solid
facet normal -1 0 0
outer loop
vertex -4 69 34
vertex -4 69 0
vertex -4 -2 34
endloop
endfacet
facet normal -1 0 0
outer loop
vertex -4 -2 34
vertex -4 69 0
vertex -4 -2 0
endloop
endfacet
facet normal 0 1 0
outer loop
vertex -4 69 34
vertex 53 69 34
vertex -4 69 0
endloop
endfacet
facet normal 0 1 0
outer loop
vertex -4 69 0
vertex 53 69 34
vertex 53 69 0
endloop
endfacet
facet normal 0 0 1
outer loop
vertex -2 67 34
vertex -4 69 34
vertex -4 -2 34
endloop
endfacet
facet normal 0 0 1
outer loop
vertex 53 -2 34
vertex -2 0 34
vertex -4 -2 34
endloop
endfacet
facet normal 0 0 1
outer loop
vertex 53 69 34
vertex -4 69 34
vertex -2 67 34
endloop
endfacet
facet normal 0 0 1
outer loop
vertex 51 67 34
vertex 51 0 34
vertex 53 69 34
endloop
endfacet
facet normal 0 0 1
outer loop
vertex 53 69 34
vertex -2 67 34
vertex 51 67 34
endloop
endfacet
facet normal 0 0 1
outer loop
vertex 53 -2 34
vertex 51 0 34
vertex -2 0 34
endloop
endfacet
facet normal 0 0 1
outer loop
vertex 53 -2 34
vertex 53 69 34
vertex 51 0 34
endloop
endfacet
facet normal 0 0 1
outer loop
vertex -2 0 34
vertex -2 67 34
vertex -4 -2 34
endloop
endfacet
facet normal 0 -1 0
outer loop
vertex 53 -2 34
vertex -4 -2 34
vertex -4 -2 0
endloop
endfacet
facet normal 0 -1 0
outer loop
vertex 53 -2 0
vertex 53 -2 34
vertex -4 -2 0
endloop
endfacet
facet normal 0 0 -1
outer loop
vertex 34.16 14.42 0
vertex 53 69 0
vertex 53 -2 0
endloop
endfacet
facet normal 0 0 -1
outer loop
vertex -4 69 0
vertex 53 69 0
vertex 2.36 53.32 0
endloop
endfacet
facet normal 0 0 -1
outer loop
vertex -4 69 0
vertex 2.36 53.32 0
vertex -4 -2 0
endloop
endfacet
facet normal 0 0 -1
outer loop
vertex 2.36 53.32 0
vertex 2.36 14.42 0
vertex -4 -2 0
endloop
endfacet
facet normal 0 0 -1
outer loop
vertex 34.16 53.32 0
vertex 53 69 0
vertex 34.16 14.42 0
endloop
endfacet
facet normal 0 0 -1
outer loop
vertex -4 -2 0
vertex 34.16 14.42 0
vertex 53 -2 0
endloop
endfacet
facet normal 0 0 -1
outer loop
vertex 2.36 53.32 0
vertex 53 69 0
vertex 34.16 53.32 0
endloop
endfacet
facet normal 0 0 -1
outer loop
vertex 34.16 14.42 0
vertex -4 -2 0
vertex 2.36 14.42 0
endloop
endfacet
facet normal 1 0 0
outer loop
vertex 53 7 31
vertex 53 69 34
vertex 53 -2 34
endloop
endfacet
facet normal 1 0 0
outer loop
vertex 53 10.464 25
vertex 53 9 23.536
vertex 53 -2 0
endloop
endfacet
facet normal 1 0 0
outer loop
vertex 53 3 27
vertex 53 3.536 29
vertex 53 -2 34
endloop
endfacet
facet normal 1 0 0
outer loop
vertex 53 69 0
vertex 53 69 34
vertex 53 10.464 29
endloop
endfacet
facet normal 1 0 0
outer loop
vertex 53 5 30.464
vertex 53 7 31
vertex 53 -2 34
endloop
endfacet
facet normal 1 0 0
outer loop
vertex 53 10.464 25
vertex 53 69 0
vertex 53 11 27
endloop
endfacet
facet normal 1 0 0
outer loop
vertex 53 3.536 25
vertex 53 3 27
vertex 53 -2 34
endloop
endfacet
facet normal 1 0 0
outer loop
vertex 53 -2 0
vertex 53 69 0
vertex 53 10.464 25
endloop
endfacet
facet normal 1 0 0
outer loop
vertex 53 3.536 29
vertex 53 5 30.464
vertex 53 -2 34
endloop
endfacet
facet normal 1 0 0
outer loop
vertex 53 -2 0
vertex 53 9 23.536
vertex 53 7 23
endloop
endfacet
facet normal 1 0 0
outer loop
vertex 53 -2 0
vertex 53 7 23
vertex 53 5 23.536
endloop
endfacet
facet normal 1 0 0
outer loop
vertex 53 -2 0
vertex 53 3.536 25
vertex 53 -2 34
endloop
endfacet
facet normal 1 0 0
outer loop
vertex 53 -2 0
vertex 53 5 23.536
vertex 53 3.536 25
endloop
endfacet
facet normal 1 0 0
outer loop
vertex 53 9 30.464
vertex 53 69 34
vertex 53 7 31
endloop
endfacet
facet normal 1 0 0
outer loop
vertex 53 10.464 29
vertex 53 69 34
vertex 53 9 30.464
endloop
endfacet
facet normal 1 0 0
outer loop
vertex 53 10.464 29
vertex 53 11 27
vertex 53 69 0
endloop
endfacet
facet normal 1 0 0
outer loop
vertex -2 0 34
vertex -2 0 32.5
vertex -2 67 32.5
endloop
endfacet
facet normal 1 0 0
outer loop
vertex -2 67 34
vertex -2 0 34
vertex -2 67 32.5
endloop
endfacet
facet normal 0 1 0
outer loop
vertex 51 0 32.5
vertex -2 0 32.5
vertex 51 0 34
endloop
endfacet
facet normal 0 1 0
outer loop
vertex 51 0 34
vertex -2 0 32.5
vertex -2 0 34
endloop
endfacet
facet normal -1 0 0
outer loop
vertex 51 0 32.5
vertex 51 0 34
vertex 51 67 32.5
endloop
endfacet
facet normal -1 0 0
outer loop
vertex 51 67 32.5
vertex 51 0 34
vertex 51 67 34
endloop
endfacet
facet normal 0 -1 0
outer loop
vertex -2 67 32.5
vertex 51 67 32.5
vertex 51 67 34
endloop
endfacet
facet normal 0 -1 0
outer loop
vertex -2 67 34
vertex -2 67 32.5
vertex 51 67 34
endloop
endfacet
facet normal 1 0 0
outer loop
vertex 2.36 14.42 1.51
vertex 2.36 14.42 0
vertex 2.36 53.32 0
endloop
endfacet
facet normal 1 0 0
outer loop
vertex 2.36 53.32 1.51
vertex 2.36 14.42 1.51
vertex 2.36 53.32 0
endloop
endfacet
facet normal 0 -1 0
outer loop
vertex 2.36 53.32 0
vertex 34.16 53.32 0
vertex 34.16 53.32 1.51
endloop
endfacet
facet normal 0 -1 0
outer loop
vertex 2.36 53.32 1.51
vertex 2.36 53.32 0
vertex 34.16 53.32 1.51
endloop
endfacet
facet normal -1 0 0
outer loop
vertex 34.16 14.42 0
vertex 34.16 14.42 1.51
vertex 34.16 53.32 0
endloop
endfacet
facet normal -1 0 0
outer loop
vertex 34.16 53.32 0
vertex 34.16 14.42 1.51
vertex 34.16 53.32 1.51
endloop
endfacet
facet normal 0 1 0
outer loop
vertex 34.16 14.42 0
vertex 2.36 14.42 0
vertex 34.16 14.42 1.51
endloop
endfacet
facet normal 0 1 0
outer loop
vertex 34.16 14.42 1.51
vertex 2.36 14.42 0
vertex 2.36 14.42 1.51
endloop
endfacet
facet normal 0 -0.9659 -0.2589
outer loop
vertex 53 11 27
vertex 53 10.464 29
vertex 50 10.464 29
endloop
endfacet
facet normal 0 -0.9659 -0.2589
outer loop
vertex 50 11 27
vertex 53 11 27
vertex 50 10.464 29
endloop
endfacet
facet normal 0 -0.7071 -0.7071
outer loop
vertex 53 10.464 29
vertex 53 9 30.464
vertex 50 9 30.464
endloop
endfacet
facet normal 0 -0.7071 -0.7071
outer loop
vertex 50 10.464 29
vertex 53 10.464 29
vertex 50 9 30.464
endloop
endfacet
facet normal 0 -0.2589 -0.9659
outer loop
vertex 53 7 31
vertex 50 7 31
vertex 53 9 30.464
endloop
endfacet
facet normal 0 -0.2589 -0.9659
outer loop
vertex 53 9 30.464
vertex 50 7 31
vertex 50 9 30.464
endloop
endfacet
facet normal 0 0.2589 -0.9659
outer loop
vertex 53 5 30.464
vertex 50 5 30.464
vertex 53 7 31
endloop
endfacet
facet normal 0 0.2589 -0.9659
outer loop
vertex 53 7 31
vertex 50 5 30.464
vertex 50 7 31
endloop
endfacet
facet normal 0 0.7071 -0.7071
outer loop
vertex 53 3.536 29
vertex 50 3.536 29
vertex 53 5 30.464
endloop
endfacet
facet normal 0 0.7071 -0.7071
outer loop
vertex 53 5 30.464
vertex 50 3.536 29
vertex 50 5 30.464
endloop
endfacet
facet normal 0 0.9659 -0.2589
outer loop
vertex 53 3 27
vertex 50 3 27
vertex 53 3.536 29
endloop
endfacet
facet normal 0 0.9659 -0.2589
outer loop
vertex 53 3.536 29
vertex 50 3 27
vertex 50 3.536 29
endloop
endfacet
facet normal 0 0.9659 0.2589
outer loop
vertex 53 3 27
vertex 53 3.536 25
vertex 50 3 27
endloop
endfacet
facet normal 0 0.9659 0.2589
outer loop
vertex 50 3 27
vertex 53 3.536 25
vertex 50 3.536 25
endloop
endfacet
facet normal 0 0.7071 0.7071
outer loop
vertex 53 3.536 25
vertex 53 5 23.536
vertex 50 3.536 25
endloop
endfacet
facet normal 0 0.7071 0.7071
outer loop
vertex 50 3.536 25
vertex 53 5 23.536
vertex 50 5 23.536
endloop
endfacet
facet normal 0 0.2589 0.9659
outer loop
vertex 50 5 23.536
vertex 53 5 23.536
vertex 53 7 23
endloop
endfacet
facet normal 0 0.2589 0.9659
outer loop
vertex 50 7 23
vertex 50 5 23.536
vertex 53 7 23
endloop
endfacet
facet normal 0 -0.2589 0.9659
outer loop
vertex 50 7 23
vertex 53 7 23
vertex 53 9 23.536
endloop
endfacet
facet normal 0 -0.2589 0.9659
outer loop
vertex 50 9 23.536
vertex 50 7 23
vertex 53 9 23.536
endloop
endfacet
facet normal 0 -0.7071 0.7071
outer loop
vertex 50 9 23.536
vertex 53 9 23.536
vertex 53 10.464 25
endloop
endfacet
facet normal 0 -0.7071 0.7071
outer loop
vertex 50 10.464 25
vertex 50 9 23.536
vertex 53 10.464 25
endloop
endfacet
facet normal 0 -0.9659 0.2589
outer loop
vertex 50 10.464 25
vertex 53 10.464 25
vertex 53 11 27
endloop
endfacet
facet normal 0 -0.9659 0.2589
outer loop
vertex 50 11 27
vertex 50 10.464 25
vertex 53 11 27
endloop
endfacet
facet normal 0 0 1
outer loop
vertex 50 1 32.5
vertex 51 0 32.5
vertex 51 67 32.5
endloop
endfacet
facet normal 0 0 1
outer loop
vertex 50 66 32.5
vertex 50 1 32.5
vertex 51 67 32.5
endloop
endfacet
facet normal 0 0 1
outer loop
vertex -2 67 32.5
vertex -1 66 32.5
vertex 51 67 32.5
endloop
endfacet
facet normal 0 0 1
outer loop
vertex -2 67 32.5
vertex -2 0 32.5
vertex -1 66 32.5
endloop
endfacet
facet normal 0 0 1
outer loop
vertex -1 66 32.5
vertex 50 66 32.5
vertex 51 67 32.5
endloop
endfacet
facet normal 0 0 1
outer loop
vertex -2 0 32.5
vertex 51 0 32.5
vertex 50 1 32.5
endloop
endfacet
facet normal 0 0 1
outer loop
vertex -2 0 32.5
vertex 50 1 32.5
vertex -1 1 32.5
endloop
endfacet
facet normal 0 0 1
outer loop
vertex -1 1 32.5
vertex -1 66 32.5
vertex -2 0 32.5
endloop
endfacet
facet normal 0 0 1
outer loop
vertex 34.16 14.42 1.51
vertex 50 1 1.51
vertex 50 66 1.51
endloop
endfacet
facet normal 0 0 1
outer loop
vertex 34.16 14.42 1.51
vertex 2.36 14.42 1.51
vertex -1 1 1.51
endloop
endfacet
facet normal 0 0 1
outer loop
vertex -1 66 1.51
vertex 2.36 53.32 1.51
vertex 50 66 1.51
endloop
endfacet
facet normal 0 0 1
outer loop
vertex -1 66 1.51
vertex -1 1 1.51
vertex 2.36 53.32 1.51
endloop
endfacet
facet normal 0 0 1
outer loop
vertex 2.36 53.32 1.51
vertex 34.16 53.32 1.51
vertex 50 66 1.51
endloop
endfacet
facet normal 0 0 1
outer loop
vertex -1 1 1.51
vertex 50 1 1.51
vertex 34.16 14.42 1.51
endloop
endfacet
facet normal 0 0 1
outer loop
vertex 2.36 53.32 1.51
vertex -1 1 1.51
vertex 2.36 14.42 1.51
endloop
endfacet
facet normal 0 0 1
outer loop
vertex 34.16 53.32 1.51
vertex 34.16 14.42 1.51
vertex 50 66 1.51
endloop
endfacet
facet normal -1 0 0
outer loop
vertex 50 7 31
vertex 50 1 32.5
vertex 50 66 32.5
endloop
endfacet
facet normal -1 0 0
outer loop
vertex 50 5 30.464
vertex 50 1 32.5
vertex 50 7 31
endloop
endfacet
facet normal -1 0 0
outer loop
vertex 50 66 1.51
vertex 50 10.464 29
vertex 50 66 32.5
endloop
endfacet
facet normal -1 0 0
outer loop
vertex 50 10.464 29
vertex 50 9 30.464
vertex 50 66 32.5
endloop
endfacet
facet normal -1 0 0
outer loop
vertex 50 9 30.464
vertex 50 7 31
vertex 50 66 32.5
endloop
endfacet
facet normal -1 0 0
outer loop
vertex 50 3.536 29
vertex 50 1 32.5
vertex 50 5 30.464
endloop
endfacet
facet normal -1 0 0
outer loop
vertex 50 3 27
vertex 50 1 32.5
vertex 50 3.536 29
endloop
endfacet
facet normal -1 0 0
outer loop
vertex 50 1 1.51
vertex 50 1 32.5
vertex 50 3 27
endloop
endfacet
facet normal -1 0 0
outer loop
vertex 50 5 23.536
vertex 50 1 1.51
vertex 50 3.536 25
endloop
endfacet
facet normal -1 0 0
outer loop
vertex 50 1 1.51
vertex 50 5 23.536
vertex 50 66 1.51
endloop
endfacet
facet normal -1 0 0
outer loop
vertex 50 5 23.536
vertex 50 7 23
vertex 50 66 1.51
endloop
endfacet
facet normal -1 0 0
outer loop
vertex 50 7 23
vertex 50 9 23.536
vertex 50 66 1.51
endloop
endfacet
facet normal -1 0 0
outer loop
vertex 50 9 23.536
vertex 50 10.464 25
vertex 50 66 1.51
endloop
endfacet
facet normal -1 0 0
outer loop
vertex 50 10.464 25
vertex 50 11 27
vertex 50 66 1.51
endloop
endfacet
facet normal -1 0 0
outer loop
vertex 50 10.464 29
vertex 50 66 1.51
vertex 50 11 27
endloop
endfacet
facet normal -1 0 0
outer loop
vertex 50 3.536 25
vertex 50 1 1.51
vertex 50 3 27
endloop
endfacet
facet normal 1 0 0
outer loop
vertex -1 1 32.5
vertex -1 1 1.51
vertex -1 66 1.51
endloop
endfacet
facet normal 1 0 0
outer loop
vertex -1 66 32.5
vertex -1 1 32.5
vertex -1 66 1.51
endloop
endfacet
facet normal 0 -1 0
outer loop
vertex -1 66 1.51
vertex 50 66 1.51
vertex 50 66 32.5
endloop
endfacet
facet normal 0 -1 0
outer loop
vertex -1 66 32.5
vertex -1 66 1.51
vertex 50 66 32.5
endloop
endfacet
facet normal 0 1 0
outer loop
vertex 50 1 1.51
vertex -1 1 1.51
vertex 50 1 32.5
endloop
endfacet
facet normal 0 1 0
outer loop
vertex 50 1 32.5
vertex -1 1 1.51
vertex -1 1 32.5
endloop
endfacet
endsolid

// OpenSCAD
bushoogte=5;
busdoorsnede=5/2;
busgat=2.5/2;

wanddikte=3;
frontdikte=1.5;
lengte=65; //draad ruimte 4mm
breedte=51; //draad ruimte 4mm
hoogte=26+bushoogte; //hoogte van de module zelf

busx1=13.97;
busy1=8.26;
busx2=2.54;
busy2=58.42;
busx3=44.45;
busy3=58.42;

screenx1=2.36;
screeny1=14.42;
screenx2=31.8;
screeny2=38.9;



translate([0,lengte,frontdikte+hoogte]){rotate([180,0,0]){	doosje();}}
//translate([breedte+10,0,0]){	plaat();}

//doosje();

//nulpunt is de linker onderhoek van de pcb
module doosje()
{
	difference()
	{
		translate([0-wanddikte-1,0-wanddikte-1,0-frontdikte]) {cube([breedte+(wanddikte*2),lengte+(wanddikte*2),hoogte+(frontdikte*2)]);}
		translate([0-1,0-1,0-frontdikte-0.01]) {cube([breedte,lengte,hoogte+frontdikte]);}
//		translate([screenx1,screeny1,hoogte-wanddikte-5]) {cube([screenx2,screeny2,wanddikte*4]);}
		translate([screenx1,lengte-screeny1-screeny2,hoogte-frontdikte-5]) {cube([screenx2,screeny2,wanddikte*4]);}
		//plaat();
		translate([-2,-2,0-frontdikte]) {cube([breedte+2,lengte+2,frontdikte]);}

		translate([breedte,lengte-wanddikte-4,frontdikte+4]) {rotate([0,90,0]) {cylinder(20,4,4,center=true,$fn=12);}}
	}

}

module plaat()
{
	translate([-2,-2,0]) {cube([breedte+2,lengte+2,frontdikte]);}
	translate([busx1,busy1,frontdikte]) {bus();}
	translate([busx2,busy2,frontdikte]) {bus();}
	translate([busx3,busy3,frontdikte]) {bus();}
}

module bus()
{
	difference()
	{
		translate([0,0,(bushoogte/2)-0.1]){cylinder(bushoogte,busdoorsnede,busdoorsnede,center=true);}
		translate([0,0,(bushoogte/2)-0.1]){cylinder(bushoogte+2,busgat,busgat,center=true,$fn=12);}
	}


}
